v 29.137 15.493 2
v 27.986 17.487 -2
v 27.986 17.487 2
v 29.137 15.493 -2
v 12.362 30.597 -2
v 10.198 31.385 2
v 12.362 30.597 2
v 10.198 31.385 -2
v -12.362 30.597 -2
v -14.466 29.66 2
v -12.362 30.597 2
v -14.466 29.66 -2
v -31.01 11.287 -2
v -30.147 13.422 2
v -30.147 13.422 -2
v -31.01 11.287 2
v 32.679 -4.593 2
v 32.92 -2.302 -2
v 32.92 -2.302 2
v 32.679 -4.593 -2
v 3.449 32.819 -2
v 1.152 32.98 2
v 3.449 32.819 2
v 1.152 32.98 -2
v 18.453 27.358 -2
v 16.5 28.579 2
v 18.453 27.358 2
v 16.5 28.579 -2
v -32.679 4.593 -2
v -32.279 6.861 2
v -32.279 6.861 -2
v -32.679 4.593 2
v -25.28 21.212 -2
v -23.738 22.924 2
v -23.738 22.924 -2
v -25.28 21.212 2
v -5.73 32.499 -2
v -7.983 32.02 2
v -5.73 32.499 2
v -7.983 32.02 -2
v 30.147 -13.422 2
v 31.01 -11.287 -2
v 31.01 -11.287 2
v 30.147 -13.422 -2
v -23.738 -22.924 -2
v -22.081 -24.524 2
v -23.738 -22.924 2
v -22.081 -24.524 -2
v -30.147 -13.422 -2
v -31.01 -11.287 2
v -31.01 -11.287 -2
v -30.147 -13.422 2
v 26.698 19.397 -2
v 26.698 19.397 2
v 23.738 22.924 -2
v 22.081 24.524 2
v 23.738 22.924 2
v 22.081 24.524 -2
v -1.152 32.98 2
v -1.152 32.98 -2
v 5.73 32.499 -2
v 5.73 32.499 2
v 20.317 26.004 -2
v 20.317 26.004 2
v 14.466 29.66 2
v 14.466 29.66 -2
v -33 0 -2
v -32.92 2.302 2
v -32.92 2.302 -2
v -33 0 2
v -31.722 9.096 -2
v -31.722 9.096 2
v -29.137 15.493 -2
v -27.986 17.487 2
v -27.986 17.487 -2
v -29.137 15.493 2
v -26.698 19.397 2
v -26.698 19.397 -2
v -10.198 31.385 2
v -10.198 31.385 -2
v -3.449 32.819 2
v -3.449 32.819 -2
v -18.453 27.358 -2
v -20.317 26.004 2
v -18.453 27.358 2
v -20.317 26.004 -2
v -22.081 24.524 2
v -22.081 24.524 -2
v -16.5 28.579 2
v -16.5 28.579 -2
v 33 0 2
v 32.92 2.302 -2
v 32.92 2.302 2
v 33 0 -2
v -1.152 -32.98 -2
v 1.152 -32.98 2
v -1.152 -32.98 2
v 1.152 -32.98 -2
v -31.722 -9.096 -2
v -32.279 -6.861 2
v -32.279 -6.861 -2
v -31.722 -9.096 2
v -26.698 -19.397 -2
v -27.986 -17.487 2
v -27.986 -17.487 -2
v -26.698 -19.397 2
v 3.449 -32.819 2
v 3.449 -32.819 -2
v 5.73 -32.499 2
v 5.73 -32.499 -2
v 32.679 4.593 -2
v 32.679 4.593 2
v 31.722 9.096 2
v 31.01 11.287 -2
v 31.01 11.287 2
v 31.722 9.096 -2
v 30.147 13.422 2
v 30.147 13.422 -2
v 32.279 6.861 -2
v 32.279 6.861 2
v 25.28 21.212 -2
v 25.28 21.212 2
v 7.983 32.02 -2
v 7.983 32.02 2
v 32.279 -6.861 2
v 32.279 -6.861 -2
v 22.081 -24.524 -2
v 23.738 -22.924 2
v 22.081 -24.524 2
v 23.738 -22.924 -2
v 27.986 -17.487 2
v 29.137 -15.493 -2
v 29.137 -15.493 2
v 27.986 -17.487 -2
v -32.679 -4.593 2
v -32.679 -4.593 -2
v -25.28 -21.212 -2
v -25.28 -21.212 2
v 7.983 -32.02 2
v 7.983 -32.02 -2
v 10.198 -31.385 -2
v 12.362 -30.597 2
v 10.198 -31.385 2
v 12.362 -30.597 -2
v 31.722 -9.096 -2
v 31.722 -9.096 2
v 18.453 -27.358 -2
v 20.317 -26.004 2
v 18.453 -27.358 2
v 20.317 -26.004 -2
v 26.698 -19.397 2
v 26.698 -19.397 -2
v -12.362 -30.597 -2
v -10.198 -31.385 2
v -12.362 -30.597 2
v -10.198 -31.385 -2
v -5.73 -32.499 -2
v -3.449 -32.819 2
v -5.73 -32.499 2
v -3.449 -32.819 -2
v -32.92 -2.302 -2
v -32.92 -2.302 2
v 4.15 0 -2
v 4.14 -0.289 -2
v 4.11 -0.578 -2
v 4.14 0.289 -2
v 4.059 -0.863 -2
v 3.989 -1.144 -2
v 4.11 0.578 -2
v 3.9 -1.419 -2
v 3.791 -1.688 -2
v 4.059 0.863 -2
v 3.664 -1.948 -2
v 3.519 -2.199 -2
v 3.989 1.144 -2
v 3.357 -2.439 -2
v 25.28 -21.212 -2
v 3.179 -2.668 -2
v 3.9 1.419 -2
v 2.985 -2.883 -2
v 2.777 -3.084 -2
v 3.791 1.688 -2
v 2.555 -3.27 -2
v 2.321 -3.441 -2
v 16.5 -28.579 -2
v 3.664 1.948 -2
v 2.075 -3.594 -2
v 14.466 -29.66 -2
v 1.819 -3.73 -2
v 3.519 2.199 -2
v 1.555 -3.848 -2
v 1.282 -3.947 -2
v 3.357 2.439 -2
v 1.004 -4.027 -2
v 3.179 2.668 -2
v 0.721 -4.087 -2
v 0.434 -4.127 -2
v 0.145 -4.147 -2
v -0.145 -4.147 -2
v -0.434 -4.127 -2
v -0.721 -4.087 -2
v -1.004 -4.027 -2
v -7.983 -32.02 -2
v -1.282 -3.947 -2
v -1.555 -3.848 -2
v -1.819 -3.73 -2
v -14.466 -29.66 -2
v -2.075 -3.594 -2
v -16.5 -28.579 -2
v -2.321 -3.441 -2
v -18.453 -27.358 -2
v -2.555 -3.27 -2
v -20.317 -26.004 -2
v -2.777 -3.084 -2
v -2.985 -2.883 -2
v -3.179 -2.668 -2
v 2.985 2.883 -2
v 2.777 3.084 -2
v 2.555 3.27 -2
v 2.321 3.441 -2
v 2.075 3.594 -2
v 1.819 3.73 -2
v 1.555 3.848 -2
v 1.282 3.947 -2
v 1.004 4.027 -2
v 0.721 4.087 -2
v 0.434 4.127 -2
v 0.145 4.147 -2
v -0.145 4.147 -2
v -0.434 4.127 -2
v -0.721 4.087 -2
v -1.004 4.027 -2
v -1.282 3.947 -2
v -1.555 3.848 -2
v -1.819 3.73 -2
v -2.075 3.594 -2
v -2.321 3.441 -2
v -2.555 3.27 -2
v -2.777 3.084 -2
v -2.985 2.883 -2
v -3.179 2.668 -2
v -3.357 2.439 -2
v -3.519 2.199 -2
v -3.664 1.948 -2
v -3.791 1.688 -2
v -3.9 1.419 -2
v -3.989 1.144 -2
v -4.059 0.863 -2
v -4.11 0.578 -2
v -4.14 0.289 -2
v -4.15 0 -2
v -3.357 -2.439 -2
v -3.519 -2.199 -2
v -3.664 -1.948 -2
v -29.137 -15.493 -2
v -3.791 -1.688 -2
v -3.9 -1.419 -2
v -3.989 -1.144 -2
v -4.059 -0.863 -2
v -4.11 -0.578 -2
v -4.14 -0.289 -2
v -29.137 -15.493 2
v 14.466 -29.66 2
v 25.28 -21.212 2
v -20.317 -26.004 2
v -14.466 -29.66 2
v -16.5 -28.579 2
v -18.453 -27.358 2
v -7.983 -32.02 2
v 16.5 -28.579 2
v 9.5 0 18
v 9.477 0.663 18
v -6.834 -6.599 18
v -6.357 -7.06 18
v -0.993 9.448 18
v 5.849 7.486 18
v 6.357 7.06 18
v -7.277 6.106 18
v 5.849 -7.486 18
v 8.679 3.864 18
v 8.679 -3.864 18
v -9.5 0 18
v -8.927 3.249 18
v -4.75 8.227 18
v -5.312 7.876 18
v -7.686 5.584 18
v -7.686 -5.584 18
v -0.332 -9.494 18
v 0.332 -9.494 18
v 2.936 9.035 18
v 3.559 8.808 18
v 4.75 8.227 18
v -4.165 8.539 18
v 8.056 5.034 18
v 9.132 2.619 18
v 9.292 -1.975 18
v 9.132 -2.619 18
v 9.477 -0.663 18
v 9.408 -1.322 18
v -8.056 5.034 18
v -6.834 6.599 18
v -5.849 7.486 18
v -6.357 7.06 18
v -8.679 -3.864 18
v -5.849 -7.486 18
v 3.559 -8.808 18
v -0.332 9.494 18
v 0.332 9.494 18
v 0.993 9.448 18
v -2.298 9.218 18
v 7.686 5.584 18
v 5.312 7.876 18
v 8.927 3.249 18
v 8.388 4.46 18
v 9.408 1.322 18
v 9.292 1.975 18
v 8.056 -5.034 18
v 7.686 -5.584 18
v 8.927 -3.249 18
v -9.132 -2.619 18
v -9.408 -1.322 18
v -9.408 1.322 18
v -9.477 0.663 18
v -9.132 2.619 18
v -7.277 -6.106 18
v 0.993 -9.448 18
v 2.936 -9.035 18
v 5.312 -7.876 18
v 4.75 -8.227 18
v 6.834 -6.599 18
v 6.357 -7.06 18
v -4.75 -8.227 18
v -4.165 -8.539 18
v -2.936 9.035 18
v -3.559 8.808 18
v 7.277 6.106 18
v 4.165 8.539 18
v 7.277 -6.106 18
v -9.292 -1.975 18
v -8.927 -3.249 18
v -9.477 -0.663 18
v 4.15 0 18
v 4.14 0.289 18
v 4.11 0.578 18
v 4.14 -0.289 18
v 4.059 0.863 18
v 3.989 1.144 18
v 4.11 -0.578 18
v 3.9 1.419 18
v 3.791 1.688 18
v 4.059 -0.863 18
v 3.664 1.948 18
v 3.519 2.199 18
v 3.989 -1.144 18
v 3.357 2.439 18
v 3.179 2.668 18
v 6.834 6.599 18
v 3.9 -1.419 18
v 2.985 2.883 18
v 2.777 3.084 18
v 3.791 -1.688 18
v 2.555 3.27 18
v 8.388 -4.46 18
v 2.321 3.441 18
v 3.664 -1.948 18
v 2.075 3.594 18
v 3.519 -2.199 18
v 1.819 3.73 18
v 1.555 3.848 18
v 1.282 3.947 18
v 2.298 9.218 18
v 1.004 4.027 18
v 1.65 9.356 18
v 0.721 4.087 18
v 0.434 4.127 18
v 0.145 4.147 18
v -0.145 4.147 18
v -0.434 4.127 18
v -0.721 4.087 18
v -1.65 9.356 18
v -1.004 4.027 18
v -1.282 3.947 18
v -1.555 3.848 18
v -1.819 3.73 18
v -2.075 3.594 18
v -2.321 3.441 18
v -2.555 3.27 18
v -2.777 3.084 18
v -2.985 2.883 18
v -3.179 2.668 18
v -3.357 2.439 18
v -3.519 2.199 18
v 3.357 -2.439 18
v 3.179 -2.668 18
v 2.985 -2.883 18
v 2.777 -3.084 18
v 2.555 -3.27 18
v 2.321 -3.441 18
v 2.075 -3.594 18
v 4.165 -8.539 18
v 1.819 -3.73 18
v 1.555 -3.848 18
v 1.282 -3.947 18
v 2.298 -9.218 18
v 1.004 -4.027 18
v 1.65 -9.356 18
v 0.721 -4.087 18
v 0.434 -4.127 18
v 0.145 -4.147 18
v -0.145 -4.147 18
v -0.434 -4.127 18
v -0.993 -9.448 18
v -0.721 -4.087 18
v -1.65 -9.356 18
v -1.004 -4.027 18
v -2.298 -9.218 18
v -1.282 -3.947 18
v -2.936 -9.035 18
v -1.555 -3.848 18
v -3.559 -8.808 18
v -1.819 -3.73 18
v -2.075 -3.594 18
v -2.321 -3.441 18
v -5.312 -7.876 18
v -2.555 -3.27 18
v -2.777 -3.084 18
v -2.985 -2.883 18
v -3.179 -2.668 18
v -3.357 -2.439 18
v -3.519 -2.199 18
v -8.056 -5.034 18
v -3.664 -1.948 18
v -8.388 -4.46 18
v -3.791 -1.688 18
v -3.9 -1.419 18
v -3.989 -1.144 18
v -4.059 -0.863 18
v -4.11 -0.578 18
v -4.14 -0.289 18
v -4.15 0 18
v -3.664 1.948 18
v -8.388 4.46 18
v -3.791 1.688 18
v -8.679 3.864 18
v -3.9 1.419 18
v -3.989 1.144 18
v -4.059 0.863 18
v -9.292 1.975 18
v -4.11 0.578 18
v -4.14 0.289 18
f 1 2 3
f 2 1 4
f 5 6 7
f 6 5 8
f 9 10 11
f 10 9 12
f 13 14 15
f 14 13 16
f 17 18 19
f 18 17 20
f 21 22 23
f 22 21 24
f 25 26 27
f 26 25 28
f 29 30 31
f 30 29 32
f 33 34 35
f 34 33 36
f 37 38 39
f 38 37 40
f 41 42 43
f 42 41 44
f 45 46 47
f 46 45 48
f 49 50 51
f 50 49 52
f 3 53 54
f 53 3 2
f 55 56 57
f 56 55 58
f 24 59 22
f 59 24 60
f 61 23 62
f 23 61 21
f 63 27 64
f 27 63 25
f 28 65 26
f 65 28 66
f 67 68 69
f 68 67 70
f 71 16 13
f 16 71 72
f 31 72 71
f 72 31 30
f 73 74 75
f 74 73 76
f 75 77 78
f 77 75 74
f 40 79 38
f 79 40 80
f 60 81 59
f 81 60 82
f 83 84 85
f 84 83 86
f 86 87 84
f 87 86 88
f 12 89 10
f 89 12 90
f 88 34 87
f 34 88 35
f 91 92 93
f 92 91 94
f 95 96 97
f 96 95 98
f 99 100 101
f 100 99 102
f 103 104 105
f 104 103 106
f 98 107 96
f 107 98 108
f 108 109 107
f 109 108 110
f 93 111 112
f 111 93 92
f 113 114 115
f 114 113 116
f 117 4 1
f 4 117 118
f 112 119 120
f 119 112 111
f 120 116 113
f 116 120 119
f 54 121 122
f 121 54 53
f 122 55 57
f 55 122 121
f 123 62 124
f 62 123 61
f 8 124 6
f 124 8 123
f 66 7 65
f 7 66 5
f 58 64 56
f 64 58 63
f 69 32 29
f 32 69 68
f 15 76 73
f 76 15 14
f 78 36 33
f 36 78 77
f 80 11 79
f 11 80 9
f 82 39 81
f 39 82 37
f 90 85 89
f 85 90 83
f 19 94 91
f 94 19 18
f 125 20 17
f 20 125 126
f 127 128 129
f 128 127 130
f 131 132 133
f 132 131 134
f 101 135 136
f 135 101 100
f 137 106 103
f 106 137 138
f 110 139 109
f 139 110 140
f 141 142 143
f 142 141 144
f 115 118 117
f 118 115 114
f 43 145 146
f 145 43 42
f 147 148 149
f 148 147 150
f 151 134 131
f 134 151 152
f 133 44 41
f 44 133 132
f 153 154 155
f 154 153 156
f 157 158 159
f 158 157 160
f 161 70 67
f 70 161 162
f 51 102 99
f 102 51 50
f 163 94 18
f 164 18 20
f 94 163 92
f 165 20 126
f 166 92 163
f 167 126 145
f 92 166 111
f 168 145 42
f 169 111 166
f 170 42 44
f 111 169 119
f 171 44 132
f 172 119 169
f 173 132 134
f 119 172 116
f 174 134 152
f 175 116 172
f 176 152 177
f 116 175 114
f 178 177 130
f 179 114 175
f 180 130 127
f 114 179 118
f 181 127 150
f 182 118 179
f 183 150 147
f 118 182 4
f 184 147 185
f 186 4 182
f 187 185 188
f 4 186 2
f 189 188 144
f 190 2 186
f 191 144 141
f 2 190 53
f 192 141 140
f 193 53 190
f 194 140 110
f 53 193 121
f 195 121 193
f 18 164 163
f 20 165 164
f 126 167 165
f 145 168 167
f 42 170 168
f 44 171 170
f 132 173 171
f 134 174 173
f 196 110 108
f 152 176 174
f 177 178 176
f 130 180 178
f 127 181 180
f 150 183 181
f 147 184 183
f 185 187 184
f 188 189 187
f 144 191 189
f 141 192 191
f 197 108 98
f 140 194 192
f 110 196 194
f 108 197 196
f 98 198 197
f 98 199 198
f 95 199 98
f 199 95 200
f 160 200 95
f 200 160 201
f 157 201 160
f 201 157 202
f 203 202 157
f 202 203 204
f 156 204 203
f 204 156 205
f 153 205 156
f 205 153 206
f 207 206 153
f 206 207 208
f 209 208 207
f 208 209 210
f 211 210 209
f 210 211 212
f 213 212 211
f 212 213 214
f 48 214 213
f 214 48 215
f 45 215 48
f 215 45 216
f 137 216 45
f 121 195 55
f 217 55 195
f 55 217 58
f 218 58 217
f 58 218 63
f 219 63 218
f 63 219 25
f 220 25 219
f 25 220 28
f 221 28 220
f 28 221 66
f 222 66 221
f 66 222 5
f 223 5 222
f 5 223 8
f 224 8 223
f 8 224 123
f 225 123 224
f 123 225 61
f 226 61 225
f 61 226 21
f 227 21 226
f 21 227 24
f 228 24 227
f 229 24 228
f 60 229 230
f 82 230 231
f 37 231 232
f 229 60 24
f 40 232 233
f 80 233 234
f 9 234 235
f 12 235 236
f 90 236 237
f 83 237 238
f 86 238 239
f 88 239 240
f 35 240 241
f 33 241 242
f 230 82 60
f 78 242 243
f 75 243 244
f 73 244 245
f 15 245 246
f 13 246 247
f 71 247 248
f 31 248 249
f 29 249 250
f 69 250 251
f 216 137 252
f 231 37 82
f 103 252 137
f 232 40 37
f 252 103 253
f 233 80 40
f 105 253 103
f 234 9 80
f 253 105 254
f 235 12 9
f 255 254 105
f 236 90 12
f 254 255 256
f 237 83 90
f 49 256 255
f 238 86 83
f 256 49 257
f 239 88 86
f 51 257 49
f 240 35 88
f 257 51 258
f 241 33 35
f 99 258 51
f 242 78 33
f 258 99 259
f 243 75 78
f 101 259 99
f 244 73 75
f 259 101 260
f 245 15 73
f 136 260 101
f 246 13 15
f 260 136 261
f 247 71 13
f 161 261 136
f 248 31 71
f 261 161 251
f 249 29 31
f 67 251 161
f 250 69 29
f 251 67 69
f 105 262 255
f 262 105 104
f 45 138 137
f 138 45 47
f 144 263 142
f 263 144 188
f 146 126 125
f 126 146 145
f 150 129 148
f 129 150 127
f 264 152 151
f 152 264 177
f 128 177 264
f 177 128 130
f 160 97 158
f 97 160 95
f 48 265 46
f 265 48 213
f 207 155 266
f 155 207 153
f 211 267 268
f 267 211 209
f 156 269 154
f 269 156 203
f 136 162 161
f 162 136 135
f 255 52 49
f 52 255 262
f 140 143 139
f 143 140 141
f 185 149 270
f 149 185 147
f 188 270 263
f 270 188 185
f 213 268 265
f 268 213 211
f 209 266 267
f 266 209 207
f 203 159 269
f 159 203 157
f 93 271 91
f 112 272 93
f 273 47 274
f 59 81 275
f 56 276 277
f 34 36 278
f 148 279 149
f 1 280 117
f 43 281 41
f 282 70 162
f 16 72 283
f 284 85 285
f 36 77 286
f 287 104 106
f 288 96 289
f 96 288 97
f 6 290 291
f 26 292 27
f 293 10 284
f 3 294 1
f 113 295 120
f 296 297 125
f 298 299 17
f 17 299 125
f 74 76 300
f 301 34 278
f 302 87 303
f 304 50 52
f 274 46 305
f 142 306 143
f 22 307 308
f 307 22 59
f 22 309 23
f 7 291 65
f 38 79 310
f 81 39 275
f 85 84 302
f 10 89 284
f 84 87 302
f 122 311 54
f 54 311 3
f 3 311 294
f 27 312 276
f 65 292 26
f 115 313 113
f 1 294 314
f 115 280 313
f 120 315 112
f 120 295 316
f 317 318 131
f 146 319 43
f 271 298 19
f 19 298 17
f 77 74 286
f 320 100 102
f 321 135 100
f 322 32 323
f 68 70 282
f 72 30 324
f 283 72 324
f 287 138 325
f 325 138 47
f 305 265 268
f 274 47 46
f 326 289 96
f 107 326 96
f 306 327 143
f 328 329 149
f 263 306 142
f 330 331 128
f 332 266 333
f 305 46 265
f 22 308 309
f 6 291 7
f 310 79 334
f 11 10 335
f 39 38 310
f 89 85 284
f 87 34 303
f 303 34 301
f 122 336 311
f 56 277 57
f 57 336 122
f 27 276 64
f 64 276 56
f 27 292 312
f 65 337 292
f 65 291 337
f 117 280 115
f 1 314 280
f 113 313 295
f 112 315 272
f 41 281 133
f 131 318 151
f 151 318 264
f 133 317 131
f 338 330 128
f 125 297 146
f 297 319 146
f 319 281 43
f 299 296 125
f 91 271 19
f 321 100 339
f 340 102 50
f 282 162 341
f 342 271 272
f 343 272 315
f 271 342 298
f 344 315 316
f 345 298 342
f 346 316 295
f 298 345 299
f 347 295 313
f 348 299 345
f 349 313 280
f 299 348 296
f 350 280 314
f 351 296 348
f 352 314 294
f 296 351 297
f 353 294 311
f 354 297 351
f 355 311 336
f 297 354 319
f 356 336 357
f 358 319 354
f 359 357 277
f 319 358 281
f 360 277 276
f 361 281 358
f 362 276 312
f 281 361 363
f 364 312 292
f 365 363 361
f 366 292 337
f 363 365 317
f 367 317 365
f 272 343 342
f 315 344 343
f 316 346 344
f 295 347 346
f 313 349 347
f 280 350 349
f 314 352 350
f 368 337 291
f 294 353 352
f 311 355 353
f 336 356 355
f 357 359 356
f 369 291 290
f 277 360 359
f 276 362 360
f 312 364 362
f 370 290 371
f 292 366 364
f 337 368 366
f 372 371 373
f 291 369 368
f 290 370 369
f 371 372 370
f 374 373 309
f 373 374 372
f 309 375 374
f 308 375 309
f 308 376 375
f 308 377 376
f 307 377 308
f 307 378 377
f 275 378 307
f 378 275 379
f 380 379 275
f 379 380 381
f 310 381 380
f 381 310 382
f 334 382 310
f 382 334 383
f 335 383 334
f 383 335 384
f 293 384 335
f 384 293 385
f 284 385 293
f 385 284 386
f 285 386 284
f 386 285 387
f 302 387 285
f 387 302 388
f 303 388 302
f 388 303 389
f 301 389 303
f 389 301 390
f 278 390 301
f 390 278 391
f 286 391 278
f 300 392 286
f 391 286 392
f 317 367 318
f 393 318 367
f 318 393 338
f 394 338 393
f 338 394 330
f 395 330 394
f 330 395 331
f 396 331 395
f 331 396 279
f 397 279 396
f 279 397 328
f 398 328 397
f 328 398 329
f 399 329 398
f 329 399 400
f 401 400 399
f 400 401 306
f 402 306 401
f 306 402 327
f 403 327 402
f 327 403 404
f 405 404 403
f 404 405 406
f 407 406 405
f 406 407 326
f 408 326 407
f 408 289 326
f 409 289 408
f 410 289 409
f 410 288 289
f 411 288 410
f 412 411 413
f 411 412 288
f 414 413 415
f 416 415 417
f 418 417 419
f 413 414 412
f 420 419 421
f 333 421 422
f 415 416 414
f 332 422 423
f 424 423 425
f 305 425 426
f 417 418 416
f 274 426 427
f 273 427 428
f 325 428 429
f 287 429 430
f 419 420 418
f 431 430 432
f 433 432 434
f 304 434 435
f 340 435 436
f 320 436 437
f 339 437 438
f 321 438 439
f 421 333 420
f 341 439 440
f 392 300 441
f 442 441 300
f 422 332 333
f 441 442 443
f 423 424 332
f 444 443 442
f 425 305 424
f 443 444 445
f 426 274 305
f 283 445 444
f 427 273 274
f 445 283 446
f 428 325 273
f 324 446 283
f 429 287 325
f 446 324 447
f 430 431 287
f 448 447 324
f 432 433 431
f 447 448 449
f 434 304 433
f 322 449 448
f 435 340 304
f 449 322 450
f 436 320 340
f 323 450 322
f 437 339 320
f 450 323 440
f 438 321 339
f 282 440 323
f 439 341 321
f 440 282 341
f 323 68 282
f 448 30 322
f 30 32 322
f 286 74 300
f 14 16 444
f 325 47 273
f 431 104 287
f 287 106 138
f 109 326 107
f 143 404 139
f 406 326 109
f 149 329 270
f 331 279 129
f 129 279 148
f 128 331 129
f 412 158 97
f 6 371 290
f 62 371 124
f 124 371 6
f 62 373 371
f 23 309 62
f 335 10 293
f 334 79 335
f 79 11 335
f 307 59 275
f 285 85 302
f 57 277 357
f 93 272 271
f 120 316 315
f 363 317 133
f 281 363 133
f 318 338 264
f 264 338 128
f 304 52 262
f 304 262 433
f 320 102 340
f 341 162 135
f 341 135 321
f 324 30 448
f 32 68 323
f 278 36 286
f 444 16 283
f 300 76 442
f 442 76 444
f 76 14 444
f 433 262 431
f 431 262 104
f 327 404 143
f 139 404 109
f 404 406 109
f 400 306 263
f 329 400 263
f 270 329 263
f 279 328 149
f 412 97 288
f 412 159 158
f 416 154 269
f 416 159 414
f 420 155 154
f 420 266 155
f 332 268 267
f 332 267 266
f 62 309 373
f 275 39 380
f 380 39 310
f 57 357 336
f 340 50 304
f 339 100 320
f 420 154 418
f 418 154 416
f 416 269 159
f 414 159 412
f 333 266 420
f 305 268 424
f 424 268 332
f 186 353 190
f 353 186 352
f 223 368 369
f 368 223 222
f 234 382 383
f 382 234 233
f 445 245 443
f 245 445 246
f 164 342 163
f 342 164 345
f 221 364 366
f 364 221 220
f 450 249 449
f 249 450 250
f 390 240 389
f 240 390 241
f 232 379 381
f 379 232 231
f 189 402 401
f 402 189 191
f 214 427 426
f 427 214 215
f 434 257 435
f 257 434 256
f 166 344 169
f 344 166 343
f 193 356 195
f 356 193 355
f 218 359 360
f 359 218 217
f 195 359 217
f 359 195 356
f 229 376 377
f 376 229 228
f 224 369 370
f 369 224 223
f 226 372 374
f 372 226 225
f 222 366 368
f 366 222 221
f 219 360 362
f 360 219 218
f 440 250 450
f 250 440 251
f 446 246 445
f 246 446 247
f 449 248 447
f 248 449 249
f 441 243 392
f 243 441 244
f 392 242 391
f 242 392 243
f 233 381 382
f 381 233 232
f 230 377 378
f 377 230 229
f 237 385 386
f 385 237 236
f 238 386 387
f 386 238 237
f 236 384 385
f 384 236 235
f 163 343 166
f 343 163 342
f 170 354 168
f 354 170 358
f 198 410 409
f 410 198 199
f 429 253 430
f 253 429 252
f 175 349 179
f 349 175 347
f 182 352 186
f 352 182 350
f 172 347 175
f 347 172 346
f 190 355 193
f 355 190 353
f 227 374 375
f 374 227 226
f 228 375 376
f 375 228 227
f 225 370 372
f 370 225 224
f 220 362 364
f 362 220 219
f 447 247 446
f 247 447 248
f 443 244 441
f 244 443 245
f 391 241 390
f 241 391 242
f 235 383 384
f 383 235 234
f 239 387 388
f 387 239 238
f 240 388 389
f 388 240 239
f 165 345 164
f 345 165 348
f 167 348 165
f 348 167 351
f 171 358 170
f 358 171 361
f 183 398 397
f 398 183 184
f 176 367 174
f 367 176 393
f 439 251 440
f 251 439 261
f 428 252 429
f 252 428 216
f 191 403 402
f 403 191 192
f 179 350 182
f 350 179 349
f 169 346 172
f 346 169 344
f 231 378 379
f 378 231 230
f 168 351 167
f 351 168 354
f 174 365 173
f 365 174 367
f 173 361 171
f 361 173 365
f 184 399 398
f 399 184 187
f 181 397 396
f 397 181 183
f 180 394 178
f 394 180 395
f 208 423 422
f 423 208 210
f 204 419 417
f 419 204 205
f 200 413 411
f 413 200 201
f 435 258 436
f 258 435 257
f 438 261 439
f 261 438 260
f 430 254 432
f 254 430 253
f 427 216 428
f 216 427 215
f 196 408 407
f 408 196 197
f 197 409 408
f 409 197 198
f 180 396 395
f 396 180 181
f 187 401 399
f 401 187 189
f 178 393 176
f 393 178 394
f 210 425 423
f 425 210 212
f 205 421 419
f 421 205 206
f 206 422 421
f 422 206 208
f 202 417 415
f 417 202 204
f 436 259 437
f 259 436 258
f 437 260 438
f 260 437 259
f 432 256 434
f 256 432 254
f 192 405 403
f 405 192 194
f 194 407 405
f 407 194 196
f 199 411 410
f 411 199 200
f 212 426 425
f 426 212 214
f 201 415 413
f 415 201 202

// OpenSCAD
difference(){
union(){
translate([0,0,0]) rotate([0,0,0]) cylinder(h = 4, d=66, $fn = 90, center = true); 
    
translate([0,0,10]) rotate([0,0,0]) cylinder(h = 16, d1=66, d2=19, $fn = 90, center = true); 
}  

translate([0,0,0]) rotate([0,0,0]) cylinder(h = 40, d=8.3, $fn = 90, center = true); 


}
    
